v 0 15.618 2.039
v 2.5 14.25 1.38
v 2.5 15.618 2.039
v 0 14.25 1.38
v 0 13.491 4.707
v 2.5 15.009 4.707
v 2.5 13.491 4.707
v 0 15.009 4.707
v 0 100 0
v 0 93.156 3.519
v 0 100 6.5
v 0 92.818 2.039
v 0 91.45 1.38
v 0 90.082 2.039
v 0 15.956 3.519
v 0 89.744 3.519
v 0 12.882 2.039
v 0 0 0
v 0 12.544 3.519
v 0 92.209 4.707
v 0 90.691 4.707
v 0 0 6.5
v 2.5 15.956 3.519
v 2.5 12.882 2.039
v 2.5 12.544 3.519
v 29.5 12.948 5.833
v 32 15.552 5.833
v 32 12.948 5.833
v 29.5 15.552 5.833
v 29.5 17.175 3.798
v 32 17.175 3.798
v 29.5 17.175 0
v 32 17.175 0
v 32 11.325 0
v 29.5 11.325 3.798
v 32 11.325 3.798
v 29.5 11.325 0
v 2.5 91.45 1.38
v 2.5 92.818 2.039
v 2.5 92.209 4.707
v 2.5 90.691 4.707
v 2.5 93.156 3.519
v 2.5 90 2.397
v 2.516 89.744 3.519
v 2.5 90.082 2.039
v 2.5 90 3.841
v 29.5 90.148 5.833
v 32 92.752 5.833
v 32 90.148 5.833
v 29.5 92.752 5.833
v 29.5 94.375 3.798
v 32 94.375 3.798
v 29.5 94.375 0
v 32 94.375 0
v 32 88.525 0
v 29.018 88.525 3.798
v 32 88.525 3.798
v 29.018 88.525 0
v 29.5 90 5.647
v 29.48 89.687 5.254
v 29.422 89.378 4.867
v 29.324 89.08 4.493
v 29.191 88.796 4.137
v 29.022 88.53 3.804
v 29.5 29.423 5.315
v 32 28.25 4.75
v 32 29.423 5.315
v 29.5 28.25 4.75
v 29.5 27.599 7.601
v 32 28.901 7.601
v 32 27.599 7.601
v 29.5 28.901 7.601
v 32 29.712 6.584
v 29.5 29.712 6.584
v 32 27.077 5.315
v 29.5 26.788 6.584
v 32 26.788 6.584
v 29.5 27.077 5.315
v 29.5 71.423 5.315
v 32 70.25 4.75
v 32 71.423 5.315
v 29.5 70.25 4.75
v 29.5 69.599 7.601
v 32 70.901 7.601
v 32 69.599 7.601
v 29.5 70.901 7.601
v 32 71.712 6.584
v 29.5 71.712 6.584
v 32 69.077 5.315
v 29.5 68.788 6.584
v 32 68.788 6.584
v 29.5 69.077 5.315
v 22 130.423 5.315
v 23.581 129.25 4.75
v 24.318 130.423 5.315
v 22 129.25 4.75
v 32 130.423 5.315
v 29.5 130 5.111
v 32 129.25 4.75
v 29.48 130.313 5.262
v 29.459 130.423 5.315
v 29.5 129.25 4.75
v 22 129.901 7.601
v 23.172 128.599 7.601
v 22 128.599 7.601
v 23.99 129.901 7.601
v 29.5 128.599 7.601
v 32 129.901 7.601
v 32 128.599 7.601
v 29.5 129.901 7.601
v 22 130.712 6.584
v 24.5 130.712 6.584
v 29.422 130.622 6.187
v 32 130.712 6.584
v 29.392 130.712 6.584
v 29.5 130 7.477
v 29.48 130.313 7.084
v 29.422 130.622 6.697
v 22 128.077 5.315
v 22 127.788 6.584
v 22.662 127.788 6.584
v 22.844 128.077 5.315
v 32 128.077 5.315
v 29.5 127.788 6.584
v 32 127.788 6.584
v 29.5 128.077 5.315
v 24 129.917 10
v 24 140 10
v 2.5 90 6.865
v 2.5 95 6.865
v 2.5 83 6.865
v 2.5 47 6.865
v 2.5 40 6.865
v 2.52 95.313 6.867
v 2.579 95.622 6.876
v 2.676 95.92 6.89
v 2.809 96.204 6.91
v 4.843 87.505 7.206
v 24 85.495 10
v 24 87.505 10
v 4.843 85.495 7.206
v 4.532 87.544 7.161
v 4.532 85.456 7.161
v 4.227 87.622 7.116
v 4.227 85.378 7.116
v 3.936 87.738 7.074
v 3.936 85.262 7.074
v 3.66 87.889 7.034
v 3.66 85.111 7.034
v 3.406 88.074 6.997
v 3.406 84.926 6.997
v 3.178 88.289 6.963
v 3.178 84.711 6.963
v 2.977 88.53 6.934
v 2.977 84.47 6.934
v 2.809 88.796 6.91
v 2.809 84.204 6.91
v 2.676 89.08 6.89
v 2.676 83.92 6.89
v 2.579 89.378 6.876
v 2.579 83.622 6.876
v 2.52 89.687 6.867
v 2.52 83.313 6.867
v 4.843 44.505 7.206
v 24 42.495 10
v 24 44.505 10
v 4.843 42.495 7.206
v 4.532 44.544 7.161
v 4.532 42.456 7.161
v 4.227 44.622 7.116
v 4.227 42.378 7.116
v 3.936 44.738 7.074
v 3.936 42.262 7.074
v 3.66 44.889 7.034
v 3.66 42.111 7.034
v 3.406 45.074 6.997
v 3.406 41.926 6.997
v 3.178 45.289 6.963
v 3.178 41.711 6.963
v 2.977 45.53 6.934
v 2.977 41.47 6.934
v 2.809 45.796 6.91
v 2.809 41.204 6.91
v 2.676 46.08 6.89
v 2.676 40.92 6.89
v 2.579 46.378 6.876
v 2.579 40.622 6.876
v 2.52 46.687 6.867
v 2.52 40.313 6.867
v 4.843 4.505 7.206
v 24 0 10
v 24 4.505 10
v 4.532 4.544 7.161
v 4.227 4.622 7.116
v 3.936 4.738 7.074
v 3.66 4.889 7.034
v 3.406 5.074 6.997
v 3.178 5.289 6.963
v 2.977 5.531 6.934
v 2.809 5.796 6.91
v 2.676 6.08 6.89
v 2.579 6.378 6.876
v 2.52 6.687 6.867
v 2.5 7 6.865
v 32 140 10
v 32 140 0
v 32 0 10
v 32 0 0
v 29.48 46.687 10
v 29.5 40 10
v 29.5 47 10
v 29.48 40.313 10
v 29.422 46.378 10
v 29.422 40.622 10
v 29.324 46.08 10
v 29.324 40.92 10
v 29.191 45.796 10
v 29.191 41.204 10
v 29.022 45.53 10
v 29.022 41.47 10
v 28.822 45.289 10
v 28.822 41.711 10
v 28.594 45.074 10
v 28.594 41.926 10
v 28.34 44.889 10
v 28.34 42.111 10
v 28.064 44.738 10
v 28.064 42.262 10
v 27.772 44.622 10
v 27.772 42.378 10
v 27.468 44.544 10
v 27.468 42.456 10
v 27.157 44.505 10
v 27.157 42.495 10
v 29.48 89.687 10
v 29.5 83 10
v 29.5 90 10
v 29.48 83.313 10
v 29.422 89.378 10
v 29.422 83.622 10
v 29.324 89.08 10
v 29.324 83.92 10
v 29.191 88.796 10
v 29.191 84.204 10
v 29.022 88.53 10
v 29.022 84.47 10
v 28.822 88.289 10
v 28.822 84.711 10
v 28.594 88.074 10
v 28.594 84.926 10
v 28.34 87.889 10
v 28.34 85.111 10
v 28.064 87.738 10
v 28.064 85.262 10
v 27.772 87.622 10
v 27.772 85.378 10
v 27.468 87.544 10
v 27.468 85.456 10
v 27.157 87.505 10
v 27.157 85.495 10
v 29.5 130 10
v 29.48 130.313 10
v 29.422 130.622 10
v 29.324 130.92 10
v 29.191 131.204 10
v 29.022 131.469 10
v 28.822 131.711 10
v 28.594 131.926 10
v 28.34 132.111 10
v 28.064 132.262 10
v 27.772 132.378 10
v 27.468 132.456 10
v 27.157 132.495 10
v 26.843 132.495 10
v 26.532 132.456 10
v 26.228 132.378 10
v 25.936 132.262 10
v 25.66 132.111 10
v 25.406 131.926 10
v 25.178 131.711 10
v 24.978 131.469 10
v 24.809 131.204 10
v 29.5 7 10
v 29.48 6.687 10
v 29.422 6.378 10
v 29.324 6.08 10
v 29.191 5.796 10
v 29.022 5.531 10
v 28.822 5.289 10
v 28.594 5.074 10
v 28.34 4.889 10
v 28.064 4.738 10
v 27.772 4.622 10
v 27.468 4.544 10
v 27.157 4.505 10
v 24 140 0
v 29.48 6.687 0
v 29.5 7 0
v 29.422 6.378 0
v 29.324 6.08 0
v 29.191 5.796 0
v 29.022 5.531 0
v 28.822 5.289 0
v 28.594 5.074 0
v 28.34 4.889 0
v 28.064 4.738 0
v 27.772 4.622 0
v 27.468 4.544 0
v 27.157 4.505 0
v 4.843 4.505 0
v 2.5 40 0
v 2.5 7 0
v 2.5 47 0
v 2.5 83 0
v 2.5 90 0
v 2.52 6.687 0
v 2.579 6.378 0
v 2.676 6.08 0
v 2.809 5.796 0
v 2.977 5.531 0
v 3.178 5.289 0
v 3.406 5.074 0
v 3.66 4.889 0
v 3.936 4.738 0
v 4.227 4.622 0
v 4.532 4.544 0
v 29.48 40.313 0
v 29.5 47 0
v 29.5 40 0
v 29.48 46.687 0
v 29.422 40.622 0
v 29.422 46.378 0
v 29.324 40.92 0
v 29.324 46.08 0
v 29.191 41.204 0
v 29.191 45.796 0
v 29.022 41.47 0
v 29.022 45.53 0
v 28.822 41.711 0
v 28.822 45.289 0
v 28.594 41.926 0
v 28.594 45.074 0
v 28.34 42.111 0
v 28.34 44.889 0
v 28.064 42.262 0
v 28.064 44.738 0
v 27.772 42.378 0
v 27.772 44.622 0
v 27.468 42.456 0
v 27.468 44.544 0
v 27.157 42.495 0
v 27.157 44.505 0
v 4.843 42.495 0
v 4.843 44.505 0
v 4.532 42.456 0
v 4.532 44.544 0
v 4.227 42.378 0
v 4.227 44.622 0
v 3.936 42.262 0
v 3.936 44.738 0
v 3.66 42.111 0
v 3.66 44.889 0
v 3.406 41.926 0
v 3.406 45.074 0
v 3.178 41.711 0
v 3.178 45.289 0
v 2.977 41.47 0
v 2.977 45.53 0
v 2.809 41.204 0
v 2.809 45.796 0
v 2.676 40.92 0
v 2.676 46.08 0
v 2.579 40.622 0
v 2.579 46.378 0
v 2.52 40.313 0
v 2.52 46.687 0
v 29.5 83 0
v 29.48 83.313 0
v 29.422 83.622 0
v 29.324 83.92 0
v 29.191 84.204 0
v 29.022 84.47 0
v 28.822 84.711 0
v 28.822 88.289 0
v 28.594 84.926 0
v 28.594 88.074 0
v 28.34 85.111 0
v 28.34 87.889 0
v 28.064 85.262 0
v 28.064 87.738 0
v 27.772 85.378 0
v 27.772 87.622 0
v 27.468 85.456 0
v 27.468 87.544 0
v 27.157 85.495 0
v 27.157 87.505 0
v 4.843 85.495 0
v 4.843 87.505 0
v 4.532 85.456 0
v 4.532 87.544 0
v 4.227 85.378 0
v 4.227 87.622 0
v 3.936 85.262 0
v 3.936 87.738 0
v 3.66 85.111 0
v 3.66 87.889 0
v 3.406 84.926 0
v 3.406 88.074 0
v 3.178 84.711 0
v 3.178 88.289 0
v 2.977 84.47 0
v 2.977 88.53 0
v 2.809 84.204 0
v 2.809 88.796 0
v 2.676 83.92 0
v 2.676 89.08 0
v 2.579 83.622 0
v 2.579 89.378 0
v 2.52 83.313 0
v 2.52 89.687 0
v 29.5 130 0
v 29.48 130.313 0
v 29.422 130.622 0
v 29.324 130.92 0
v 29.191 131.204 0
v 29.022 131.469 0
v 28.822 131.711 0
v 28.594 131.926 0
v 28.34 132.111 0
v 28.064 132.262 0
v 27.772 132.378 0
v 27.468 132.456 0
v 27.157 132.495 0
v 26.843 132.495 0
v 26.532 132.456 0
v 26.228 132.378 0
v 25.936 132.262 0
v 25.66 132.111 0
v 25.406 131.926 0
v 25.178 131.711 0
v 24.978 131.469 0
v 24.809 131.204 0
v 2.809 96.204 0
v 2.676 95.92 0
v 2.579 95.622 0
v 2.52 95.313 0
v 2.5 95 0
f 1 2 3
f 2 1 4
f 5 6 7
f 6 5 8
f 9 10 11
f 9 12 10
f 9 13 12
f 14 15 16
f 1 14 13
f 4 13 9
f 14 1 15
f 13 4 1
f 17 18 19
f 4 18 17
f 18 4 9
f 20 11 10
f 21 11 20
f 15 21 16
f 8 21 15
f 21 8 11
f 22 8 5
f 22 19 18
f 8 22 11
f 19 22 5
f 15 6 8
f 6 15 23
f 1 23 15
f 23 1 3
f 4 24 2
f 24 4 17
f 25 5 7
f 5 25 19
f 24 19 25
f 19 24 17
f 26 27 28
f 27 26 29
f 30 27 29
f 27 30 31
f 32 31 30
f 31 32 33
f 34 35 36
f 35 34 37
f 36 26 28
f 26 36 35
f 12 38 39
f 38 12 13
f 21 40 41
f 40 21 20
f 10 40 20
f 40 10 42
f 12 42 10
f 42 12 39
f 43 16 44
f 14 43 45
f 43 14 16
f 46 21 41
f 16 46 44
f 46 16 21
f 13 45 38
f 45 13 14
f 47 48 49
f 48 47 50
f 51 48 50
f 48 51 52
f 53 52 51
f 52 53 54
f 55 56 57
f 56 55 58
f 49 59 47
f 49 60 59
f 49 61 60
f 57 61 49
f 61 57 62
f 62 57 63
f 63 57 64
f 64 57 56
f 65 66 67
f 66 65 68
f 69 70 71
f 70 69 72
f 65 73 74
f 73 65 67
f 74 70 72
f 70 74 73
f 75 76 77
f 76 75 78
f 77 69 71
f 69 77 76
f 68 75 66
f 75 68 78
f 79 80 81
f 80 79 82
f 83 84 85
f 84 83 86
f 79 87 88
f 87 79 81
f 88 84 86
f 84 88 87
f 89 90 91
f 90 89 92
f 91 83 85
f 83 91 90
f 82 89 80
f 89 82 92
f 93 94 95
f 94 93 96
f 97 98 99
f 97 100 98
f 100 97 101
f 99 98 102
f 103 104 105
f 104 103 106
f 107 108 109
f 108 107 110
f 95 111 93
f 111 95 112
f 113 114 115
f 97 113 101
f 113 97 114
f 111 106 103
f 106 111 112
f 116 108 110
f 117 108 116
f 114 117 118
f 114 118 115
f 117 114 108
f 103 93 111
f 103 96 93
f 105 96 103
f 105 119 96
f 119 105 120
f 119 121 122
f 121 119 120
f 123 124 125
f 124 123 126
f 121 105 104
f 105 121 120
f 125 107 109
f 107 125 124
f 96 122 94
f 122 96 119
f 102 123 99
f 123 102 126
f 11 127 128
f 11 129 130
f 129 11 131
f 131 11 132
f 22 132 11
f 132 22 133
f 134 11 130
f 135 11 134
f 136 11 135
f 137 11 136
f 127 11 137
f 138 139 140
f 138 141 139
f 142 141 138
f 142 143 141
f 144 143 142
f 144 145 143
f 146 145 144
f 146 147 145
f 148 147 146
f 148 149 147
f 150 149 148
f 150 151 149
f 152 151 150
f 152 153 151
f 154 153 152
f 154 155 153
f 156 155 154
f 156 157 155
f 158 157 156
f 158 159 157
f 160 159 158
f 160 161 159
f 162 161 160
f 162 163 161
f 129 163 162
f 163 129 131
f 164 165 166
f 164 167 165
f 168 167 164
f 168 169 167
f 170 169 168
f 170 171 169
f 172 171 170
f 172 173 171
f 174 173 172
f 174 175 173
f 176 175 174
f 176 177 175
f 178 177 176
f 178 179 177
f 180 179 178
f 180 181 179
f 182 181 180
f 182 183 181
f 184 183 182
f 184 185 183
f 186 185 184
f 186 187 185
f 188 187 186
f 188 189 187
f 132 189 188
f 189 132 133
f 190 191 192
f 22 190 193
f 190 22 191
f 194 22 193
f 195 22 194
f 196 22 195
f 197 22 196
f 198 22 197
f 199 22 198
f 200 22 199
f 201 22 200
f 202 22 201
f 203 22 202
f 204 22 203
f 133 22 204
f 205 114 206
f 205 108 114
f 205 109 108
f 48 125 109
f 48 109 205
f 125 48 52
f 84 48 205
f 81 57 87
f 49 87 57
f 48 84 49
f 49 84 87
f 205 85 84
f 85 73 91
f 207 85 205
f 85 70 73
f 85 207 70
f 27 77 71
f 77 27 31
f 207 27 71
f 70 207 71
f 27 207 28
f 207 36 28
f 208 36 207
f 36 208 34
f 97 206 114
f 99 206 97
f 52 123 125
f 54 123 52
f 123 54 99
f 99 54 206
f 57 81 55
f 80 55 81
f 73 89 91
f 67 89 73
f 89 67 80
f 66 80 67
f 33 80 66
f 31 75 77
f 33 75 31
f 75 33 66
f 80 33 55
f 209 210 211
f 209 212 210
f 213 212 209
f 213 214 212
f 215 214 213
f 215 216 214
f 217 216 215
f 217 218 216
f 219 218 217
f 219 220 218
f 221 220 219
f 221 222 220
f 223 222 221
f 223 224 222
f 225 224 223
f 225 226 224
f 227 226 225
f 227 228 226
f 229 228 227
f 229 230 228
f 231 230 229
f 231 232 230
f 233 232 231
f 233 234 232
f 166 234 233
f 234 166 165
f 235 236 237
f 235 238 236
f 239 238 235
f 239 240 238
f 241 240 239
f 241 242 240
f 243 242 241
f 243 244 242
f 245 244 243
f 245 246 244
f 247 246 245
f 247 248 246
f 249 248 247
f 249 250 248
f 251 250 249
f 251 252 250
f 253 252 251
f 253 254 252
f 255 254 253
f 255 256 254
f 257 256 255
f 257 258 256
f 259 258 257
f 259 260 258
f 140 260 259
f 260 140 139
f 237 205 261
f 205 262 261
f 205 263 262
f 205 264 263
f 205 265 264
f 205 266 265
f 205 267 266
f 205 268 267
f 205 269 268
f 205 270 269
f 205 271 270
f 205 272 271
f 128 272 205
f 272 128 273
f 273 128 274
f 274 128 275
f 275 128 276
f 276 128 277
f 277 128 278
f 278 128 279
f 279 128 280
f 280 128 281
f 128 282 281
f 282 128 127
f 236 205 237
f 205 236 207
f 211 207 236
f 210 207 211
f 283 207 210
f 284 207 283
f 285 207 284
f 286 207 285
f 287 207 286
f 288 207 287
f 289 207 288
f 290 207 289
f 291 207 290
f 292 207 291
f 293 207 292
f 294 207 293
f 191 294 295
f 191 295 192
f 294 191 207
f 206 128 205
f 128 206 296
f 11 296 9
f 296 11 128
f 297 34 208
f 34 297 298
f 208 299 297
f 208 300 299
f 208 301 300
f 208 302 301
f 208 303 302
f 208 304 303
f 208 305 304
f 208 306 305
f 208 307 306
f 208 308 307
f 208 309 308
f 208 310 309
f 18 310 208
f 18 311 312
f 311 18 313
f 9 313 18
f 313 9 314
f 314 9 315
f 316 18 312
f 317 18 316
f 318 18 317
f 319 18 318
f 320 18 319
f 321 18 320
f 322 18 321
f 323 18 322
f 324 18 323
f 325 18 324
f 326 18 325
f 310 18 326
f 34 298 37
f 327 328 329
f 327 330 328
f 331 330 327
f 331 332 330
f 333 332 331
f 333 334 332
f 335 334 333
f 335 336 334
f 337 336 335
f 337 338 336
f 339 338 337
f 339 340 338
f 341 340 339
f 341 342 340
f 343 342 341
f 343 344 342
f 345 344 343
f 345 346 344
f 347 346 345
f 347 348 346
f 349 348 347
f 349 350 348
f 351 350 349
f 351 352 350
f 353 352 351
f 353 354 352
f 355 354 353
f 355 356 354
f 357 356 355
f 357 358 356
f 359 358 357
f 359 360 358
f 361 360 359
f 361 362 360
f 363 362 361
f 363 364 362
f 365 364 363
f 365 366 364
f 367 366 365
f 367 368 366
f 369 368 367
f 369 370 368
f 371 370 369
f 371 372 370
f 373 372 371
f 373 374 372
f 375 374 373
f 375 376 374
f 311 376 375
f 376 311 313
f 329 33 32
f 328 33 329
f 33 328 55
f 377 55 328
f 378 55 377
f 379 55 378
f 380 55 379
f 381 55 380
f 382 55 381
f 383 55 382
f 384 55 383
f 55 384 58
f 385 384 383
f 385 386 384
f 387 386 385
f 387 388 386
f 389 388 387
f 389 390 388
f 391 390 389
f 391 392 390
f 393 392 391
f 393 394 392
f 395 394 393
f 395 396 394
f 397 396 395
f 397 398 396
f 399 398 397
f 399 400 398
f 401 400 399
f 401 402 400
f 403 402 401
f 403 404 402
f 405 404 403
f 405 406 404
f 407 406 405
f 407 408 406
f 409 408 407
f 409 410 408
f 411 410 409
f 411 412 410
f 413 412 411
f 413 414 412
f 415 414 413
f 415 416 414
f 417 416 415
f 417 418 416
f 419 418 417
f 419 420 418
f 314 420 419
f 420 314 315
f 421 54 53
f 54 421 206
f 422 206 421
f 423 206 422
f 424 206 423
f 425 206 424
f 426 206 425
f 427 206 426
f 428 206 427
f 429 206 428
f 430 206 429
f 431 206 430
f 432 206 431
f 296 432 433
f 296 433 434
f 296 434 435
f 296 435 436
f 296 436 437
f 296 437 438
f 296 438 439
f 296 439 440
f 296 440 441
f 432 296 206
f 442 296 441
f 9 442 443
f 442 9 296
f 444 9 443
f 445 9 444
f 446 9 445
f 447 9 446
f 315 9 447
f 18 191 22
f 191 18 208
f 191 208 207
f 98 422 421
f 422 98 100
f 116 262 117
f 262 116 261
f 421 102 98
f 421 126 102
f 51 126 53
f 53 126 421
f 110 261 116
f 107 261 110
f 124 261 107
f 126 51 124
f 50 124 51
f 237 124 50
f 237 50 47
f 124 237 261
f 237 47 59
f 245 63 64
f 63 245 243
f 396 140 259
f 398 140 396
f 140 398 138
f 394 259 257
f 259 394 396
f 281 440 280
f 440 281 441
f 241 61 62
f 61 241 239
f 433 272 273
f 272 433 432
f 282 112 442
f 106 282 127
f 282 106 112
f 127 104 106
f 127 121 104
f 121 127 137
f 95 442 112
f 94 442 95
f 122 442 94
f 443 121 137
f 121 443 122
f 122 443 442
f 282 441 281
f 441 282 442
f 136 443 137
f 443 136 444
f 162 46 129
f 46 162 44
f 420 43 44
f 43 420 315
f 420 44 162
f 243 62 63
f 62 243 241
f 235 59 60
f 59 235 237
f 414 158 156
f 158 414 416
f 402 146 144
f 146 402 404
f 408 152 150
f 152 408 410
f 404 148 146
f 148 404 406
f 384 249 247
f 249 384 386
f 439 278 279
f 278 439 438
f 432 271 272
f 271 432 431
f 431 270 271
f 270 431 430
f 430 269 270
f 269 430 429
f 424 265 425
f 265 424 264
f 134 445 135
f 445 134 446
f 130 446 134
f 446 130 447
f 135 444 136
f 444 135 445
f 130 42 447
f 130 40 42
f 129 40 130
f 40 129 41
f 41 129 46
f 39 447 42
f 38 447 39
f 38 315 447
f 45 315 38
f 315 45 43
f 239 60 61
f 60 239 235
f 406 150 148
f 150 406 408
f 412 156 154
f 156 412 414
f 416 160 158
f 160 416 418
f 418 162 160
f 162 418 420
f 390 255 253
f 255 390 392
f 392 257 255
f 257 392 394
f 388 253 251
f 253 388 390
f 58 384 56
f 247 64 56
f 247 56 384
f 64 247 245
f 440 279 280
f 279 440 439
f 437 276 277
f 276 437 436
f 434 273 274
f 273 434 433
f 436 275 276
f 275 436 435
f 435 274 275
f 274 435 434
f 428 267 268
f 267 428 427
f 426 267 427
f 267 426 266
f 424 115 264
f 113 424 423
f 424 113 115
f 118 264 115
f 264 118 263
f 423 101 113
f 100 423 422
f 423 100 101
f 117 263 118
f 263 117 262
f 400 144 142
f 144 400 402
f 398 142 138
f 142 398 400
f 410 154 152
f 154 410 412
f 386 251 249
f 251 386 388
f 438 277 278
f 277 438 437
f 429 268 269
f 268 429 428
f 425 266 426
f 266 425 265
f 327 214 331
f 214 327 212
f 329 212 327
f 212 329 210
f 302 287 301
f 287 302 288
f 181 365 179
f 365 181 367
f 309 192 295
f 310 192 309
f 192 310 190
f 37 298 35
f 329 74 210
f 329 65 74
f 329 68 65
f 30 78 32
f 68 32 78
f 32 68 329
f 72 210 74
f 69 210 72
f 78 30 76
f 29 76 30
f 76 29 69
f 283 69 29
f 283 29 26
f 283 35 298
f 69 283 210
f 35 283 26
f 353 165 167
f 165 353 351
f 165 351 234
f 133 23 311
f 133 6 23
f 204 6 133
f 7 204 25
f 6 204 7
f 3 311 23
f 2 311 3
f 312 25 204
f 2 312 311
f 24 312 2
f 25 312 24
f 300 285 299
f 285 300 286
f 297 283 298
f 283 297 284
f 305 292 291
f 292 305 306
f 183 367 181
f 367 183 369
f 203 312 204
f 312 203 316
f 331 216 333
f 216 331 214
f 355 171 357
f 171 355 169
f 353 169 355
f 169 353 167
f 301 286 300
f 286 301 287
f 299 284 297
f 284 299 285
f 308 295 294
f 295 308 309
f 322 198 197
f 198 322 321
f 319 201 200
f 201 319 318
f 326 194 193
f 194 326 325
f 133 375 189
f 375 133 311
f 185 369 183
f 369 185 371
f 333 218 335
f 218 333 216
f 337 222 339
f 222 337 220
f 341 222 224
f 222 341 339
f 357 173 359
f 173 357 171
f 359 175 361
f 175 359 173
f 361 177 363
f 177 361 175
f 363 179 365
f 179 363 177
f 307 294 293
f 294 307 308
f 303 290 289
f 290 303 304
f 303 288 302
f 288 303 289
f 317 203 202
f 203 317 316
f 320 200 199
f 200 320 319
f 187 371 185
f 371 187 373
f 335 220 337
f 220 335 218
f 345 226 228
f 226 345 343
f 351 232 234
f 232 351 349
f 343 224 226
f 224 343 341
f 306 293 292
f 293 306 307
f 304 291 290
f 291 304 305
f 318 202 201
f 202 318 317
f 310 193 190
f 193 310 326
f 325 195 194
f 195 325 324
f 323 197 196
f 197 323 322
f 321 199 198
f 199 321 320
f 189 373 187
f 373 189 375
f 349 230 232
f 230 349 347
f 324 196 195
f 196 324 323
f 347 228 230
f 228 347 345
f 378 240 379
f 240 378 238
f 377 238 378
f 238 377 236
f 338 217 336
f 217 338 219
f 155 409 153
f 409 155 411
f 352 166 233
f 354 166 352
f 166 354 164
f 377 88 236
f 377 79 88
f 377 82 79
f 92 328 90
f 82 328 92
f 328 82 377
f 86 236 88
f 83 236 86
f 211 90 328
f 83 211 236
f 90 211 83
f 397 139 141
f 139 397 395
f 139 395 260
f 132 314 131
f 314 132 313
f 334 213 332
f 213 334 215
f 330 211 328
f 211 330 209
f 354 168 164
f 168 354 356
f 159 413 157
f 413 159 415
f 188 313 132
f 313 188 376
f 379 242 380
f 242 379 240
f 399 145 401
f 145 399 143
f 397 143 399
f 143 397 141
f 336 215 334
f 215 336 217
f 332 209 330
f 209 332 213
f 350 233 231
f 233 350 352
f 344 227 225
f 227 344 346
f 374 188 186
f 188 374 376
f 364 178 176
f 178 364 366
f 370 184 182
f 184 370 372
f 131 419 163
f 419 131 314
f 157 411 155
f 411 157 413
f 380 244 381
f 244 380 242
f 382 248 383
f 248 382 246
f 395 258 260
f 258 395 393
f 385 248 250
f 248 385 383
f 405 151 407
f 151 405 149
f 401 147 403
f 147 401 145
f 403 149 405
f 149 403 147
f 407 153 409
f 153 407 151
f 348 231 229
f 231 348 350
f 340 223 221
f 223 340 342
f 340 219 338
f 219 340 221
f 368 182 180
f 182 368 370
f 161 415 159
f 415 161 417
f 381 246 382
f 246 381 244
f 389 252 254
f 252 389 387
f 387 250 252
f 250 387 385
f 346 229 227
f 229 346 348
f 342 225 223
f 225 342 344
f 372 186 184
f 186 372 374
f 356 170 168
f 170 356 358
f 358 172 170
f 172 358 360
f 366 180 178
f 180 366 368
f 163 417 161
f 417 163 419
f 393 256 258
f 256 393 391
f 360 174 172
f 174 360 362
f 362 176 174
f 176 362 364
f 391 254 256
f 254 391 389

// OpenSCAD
// 2019 by Johannes Walcher
//
// Defines an 3.5'' to 2.5'' adapter for server slots.
// Should not be used with hdds, since it will only fix it on one side and
// is not suitable agains vibrations.
// also, the other side should be somehow fixed to the tray, either by drilling
// an extra hole and fixing it there or with sticky tape.


module adapter() {
	adapterwidth = 32;
	holes_25 = [13+1.25, 90.2+1.25];
	holes_35 = [27+1.25, 69+1.25, 128+1.25];

	difference() {
		hull() {
			// Size of the full bild
			cube([0.001, 100, 6.5]);

			translate([adapterwidth-8, 0, 0])
			cube([8, 140, 10]);
		}
		hull() {
			pos = [[5,90,0],[5,95,0],[27,90,0],[27,130,0]];

			for (i = [0:1:3]) {
				translate([0,0,-0.01])
				translate(pos[i])
				cylinder(d=5, h=15, $fn=50);
			}
		}
		hull() {
			pos = [[5,7,0],[5,40,0],[27,7,0],[27,40,0]];

			for (i = [0:1:3]) {
				translate([0,0,-0.01])
				translate(pos[i])
				cylinder(d=5, h=15, $fn=50);
			}
		}
		hull() {
			pos = [[5,47,0],[5,83,0],[27,47,0],[27,83,0]];

			for (i = [0:1:3]) {
				translate([0,0,-0.01])
				translate(pos[i])
				cylinder(d=5, h=15, $fn=50);
			}
		}

		for (pos = holes_25) {
			// 2.5/2 + 1.88
			translate([0, pos, 1.88+1.25])
			rotate([0, 90, 0])
			cylinder(d=3.5, h=8, $fn=7);

			translate([adapterwidth-10, pos, 1.88+1.25])
			hull() {
				rotate([0, 90, 0])
				cylinder(d=6, h=12, $fn=7);

				rotate([0, 90, 0])
				translate([10,0,0])
				cylinder(d=6, h=12, $fn=7);
			}

		}
		for (pos = holes_35) {
			translate([adapterwidth-10, pos, 5+1.25])
			rotate([0, 90, 0])
			cylinder(d=3, h=11, $fn=7);
		}
	}
}

adapter();
